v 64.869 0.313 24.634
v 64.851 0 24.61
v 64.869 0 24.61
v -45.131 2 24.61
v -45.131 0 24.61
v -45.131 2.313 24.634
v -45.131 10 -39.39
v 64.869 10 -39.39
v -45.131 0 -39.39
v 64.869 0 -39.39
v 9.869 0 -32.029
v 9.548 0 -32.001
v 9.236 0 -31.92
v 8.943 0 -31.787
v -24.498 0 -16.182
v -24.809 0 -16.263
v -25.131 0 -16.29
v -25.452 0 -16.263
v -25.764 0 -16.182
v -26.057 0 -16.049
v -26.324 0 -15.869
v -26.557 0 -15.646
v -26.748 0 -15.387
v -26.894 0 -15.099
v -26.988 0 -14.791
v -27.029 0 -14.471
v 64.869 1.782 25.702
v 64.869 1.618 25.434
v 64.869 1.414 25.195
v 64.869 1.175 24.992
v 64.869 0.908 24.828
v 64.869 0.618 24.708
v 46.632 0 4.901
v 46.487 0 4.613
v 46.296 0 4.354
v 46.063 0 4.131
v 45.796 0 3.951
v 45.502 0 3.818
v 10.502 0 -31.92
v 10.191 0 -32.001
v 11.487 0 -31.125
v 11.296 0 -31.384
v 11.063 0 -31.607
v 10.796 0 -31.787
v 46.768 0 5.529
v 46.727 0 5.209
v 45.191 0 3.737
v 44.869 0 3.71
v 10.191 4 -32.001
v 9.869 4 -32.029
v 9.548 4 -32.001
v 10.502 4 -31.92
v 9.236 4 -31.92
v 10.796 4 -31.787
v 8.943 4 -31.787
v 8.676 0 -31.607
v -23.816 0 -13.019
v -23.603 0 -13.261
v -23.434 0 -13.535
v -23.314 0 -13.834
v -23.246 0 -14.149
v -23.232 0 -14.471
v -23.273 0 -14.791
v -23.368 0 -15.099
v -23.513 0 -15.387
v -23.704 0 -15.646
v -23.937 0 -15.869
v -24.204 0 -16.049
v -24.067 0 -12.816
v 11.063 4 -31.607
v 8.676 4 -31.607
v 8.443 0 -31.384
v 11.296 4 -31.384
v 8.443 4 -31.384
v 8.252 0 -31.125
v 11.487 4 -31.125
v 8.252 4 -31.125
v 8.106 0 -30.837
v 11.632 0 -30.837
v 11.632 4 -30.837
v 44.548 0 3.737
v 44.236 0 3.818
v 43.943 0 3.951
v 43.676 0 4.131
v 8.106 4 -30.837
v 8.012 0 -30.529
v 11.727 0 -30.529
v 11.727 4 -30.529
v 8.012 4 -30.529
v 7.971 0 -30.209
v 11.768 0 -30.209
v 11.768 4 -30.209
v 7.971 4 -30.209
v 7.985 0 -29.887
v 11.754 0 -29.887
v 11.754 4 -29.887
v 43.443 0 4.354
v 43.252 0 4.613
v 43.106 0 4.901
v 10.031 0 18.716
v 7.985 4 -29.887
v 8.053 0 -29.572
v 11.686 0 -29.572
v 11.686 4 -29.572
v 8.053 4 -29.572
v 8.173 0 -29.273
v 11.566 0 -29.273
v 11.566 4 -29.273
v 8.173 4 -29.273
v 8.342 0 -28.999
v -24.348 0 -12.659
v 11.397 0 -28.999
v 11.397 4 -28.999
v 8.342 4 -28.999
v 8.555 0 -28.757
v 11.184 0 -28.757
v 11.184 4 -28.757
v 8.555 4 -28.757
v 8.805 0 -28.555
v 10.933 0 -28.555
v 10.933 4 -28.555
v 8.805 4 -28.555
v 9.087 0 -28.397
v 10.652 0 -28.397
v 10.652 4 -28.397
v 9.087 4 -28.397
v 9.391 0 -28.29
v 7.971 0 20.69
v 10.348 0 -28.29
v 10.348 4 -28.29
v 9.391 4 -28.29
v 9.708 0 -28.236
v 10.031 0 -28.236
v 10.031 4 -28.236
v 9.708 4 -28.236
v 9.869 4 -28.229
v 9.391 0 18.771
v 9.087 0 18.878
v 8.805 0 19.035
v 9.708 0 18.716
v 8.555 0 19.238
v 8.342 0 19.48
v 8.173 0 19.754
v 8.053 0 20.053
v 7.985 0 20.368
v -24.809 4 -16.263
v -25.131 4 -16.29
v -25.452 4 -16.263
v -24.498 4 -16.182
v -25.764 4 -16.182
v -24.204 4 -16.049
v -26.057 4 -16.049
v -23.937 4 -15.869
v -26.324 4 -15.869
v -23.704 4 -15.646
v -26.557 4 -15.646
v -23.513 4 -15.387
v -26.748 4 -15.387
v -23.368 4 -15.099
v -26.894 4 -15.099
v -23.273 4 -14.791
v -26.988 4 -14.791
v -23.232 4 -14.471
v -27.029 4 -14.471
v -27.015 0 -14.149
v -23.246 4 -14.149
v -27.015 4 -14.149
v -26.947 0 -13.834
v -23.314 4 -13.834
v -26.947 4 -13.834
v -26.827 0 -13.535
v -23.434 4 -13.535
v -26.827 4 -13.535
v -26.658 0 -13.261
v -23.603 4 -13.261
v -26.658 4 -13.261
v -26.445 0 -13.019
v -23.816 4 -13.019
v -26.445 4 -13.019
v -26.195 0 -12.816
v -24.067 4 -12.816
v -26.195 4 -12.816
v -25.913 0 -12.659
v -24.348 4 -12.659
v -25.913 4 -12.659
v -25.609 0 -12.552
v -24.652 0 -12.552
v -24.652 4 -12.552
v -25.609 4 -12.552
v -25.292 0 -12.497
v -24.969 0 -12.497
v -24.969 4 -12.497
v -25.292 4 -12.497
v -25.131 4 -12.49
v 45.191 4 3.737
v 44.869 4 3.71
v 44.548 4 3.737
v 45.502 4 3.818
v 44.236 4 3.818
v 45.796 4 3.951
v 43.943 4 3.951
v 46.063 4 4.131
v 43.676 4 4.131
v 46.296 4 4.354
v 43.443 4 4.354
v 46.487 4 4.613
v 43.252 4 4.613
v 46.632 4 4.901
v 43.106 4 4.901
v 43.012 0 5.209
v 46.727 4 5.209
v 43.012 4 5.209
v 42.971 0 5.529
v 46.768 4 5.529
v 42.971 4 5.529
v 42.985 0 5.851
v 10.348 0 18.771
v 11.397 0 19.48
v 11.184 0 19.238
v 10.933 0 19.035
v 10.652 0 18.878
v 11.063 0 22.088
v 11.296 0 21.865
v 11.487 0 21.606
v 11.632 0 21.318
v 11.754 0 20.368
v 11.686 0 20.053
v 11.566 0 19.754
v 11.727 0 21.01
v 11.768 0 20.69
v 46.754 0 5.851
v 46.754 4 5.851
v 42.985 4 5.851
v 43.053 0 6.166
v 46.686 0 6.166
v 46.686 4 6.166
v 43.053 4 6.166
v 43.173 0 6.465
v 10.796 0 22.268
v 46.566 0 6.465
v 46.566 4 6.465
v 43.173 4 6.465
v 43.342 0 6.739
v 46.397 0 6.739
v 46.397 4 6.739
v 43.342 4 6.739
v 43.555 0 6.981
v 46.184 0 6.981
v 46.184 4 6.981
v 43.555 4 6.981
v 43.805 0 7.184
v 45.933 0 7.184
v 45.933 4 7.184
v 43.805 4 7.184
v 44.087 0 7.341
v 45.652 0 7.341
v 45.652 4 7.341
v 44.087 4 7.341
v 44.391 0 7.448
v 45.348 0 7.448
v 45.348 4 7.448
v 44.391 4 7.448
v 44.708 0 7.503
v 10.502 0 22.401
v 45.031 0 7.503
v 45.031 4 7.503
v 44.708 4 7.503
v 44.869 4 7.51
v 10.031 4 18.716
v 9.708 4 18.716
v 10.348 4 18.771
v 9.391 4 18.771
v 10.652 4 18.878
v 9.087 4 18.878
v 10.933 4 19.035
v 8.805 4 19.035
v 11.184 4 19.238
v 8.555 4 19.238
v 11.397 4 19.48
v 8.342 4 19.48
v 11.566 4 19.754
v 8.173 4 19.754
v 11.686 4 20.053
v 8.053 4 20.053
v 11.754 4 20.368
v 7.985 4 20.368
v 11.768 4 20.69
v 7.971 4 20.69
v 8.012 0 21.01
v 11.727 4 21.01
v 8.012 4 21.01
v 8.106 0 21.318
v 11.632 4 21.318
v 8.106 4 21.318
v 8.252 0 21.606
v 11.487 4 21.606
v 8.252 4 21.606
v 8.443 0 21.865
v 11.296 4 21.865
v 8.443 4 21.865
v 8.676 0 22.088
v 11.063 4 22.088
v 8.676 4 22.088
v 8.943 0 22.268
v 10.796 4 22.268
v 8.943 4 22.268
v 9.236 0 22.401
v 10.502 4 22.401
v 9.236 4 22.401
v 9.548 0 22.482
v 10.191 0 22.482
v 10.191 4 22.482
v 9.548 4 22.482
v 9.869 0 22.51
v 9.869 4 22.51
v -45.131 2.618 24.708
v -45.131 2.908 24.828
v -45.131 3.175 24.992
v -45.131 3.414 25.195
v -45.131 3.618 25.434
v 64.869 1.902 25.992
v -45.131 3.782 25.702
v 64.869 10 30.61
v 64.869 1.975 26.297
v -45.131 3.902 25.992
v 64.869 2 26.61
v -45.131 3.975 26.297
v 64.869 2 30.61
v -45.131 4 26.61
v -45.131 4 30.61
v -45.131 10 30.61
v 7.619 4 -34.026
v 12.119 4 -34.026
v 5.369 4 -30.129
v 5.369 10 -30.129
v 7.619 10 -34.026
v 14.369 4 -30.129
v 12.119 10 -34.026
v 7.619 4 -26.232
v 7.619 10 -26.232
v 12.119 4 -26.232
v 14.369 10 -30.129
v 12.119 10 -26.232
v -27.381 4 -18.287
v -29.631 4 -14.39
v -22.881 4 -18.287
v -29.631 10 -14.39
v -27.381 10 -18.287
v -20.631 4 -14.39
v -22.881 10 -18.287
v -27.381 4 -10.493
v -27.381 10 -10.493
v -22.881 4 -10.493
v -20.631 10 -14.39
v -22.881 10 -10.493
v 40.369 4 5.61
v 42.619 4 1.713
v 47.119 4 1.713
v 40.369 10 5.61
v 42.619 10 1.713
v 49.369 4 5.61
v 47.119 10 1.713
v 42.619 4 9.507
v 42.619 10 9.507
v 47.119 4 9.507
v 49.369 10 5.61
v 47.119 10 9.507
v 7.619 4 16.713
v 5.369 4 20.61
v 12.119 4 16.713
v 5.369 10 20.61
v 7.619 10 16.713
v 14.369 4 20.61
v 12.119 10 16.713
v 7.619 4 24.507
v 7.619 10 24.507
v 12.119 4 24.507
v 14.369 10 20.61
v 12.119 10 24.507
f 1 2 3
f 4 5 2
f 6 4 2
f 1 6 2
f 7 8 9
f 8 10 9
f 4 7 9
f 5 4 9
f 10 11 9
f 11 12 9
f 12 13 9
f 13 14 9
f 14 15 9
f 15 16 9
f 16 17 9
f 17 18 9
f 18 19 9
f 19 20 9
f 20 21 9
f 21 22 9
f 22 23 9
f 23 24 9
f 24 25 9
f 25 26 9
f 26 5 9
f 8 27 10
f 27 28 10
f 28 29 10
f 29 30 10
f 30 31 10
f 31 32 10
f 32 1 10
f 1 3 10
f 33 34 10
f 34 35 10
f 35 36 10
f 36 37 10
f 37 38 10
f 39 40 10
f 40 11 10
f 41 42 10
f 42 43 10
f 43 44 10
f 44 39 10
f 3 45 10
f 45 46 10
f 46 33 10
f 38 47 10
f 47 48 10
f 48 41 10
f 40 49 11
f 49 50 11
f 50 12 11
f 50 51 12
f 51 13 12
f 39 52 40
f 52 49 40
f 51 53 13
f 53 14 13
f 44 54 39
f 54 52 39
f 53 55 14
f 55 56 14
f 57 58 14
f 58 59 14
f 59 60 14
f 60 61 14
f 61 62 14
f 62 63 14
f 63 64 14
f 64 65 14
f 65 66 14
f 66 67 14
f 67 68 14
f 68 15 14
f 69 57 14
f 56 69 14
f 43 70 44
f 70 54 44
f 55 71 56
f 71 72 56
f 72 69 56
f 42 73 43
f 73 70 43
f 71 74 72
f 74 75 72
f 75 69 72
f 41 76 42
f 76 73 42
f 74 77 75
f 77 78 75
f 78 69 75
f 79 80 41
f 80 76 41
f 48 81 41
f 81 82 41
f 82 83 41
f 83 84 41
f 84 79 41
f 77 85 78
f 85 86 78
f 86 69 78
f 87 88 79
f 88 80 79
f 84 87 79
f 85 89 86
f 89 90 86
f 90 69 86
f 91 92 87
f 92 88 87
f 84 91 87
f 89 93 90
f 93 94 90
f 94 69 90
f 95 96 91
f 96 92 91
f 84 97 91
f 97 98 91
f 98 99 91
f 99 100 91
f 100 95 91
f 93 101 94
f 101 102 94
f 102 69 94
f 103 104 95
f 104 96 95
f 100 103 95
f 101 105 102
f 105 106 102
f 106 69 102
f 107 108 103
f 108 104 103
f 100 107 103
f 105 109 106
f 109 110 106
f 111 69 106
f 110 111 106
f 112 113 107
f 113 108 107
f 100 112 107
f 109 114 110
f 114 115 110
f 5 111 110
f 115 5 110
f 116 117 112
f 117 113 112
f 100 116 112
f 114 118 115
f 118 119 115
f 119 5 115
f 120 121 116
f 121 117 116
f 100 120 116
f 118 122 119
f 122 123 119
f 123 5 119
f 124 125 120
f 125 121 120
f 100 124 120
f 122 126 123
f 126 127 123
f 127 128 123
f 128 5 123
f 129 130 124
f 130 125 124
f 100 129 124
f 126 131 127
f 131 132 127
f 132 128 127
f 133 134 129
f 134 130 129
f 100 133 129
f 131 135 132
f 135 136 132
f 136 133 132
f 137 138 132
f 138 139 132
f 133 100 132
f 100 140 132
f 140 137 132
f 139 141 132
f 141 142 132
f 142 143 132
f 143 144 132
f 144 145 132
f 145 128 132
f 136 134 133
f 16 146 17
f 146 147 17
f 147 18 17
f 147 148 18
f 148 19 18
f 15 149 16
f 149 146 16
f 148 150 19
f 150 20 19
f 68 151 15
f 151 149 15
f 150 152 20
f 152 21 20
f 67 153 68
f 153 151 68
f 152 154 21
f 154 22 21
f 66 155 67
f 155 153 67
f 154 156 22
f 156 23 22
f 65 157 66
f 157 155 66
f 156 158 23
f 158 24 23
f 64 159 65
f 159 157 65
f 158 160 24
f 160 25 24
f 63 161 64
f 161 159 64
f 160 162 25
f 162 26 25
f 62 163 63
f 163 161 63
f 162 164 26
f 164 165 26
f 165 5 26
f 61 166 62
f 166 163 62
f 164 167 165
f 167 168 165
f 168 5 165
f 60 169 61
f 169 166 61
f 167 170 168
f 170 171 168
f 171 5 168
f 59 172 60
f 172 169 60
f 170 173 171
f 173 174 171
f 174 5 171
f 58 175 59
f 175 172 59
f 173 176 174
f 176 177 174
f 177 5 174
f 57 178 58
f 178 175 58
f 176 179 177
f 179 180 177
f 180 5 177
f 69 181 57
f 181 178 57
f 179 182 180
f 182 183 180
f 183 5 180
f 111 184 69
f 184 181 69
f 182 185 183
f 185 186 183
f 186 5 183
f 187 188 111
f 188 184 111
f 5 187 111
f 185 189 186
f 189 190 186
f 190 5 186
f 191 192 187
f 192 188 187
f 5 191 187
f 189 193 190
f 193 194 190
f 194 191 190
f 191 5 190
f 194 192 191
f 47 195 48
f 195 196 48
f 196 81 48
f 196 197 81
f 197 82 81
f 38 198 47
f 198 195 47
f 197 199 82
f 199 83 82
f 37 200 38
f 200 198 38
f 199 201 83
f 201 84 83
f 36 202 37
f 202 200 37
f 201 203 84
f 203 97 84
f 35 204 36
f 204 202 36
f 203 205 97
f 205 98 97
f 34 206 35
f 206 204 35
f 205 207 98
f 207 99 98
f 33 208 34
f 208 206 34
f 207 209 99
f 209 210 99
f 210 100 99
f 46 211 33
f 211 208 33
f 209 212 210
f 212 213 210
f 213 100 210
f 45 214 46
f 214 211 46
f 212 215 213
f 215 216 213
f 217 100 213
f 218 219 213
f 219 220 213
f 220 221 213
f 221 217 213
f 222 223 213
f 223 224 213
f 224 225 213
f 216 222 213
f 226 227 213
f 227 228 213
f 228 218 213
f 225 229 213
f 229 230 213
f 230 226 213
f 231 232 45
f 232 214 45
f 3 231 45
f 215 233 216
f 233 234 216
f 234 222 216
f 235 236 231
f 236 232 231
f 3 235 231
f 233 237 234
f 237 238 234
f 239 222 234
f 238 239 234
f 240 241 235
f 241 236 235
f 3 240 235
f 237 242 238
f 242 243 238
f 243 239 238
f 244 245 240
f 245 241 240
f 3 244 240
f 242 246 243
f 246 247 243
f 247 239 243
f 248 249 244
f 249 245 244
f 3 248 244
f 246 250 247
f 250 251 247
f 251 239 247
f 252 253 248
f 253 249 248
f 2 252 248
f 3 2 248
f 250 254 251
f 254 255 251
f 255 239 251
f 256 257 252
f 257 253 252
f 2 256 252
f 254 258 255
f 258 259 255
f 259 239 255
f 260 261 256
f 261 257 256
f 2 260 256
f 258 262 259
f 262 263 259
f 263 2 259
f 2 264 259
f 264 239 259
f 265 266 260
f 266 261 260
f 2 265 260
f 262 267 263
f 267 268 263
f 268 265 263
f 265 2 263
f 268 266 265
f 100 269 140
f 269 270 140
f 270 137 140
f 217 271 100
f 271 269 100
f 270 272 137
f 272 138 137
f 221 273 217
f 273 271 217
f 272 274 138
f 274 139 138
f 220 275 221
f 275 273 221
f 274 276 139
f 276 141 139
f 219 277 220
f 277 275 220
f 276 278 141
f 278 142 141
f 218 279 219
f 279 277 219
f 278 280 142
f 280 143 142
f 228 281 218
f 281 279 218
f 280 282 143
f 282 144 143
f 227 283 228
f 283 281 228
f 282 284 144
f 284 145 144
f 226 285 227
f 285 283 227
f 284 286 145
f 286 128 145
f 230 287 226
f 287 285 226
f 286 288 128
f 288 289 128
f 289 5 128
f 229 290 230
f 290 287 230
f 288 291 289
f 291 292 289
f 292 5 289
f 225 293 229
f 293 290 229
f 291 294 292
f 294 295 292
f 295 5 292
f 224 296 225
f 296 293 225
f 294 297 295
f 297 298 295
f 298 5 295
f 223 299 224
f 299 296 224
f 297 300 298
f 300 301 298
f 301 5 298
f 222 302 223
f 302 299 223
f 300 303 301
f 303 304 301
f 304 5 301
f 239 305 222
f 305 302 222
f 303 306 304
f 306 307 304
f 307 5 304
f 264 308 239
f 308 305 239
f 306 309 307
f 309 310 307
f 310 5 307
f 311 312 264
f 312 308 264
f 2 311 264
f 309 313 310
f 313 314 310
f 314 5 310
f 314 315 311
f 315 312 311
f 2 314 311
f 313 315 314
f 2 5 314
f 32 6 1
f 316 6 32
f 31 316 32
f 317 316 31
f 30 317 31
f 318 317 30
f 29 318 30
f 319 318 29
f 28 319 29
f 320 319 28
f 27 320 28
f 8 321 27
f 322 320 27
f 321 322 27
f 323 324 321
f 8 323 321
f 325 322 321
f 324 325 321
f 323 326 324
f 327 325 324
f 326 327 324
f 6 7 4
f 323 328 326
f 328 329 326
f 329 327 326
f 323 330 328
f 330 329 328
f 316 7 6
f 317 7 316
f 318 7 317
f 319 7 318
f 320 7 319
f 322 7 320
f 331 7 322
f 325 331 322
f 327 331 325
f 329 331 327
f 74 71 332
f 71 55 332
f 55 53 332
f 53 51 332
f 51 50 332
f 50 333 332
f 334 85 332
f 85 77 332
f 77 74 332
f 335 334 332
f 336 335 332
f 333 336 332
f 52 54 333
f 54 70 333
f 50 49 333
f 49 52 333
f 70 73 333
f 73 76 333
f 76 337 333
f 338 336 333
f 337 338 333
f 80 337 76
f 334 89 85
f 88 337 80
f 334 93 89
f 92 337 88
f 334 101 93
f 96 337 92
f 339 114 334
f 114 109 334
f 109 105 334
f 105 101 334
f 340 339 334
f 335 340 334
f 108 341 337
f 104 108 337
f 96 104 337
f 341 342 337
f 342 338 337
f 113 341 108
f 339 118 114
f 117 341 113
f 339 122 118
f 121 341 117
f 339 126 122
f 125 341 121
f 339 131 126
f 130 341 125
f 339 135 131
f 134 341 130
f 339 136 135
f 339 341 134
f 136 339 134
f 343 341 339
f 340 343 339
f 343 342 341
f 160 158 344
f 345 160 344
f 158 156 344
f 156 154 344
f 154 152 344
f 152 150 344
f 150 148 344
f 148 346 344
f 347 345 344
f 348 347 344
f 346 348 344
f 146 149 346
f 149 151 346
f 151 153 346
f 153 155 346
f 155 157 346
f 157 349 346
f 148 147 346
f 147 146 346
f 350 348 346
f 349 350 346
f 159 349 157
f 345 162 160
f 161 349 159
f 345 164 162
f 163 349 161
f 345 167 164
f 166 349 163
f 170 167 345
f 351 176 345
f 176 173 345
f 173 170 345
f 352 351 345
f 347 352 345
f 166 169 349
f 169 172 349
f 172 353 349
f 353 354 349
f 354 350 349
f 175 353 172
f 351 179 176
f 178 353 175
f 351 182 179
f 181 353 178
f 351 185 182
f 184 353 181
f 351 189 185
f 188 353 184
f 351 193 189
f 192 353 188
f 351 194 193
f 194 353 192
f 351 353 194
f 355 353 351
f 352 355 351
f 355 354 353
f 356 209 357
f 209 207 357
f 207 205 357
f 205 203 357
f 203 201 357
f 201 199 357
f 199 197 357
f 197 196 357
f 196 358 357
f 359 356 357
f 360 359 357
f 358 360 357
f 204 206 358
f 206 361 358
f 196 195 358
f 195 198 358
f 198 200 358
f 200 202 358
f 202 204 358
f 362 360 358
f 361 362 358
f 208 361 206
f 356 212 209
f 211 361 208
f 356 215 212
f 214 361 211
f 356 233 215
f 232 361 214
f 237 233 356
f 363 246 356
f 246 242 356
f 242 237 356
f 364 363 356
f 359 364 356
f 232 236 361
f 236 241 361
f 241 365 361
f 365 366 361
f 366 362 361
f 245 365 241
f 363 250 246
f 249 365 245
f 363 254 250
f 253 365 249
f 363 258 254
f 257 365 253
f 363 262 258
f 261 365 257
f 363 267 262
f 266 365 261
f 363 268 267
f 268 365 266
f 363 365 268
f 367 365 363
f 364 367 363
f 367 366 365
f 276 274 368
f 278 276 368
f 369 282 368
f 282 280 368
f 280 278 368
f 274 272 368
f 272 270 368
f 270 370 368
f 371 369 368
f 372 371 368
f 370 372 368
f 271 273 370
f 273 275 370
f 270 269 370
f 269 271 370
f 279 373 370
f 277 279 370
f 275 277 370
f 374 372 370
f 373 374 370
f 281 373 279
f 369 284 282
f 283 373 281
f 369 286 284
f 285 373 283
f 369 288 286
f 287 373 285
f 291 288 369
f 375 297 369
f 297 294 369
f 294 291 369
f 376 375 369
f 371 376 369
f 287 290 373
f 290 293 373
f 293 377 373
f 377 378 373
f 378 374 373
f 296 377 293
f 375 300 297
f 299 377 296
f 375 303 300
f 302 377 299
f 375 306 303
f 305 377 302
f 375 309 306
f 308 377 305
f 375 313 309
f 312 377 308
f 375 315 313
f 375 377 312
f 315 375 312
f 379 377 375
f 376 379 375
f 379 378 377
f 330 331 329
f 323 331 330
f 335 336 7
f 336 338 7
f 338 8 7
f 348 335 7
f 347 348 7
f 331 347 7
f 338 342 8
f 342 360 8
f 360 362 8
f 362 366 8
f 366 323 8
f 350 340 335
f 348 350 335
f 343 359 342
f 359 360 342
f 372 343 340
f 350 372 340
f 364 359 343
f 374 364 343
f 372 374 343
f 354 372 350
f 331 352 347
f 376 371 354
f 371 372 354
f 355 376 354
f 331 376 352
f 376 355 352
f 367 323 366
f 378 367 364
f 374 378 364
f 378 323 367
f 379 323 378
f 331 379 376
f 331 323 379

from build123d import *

# Parameters (mm, degrees)
SKETCH1_W           = 110
SKETCH1_H           = 70
BOSS_EXTRUDE1_DEPTH = 10
SKETCH5_R           = 1.9
CUT_EXTRUDE4_DEPTH  = 77.548290163
CUT_EXTRUDE6_DEPTH  = 6
SKETCH17_R          = 1.9
CUT_EXTRUDE8_DEPTH  = 77.548290163
FILLET1_R           = 2
SKETCH24_R          = 1.9
CUT_EXTRUDE12_DEPTH = 77.548290163
SKETCH25_R          = 1.9
CUT_EXTRUDE13_DEPTH = 77.548290163
CUT_EXTRUDE15_DEPTH = 6
CUT_EXTRUDE16_DEPTH = 6
CUT_EXTRUDE17_DEPTH = 6
CUT_EXTRUDE18_DEPTH = 6


with BuildPart() as part:
    # Sketch1 → Boss-Extrude1 (new body)
    with BuildSketch(Plane(origin=(0, 0, 0), x_dir=(1, 0, 0), z_dir=(0, 1, 0))):
        with Locations((9.869408673, 4.390361071)):
            Rectangle(SKETCH1_W, SKETCH1_H)
    extrude(amount=BOSS_EXTRUDE1_DEPTH)

    # Sketch5 → Cut-Extrude4 (cut, through all)
    with BuildSketch(Plane(origin=(0, 10, 0), x_dir=(1, 0, 0), z_dir=(0, 1, 0))):
        with Locations(Location((9.869408673, -20.609638929, 0), (0, 0, 270))):
            Circle(SKETCH5_R)
    extrude(amount=-CUT_EXTRUDE4_DEPTH, mode=Mode.SUBTRACT)

    # Sketch14 → Cut-Extrude6 (cut)
    with BuildSketch(Plane.XY.offset(30.609638929)):
        Polygon((-45.130591327, 0), (-45.130591327, 4), (64.869408673, 2), (64.869408673, 0), align=None)
    extrude(amount=-CUT_EXTRUDE6_DEPTH, mode=Mode.SUBTRACT)

    # Sketch17 → Cut-Extrude8 (cut, through all)
    with BuildSketch(Plane(origin=(0, 0, 0), x_dir=(-1, 0, 0), z_dir=(0, -1, 0))):
        with Locations(Location((-9.869408673, 30.128732458, 0), (0, 0, 90))):
            Circle(SKETCH17_R)
    extrude(amount=-CUT_EXTRUDE8_DEPTH, mode=Mode.SUBTRACT)

    # Fillet1
    fillet1_edges = [part.edges().sort_by_distance(p)[0] for p in [
        (9.869408673, 3, 24.609638929),
    ]]
    fillet(fillet1_edges, radius=FILLET1_R)

    # Sketch24 → Cut-Extrude12 (cut, through all)
    with BuildSketch(Plane.XZ):
        with Locations(Location((44.869408673, 5.609638929, 0), (0, 0, 270))):
            Circle(SKETCH24_R)
    extrude(amount=-CUT_EXTRUDE12_DEPTH, mode=Mode.SUBTRACT)

    # Sketch25 → Cut-Extrude13 (cut, through all)
    with BuildSketch(Plane.XZ):
        with Locations(Location((-25.130591327, -14.390361071, 0), (0, 0, 270))):
            Circle(SKETCH25_R)
    extrude(amount=-CUT_EXTRUDE13_DEPTH, mode=Mode.SUBTRACT)

    # Sketch27 → Cut-Extrude15 (cut)
    with BuildSketch(Plane(origin=(0, 10, 0), x_dir=(1, 0, 0), z_dir=(0, 1, 0))):
        Polygon((14.369408673, 30.128732458), (12.119408673, 34.025846775), (7.619408673, 34.025846775), (5.369408673, 30.128732458), (7.619408673, 26.231618141), (12.119408673, 26.231618141), align=None)
    extrude(amount=-CUT_EXTRUDE15_DEPTH, mode=Mode.SUBTRACT)

    # Sketch30 → Cut-Extrude16 (cut)
    with BuildSketch(Plane(origin=(0, 10, 0), x_dir=(1, 0, 0), z_dir=(0, 1, 0))):
        Polygon((49.369408673, -5.609638929), (47.119408673, -1.712524612), (42.619408673, -1.712524612), (40.369408673, -5.609638929), (42.619408673, -9.506753246), (47.119408673, -9.506753246), align=None)
    extrude(amount=-CUT_EXTRUDE16_DEPTH, mode=Mode.SUBTRACT)

    # Sketch31 → Cut-Extrude17 (cut)
    with BuildSketch(Plane(origin=(0, 10, 0), x_dir=(1, 0, 0), z_dir=(0, 1, 0))):
        Polygon((14.369408673, -20.609638929), (12.119408673, -16.712524612), (7.619408673, -16.712524612), (5.369408673, -20.609638929), (7.619408673, -24.506753246), (12.119408673, -24.506753246), align=None)
    extrude(amount=-CUT_EXTRUDE17_DEPTH, mode=Mode.SUBTRACT)

    # Sketch32 → Cut-Extrude18 (cut)
    with BuildSketch(Plane(origin=(0, 10, 0), x_dir=(1, 0, 0), z_dir=(0, 1, 0))):
        Polygon((-20.630591327, 14.390361071), (-22.880591327, 18.287475388), (-27.380591327, 18.287475388), (-29.630591327, 14.390361071), (-27.380591327, 10.493246754), (-22.880591327, 10.493246754), align=None)
    extrude(amount=-CUT_EXTRUDE18_DEPTH, mode=Mode.SUBTRACT)


solid = part.part
